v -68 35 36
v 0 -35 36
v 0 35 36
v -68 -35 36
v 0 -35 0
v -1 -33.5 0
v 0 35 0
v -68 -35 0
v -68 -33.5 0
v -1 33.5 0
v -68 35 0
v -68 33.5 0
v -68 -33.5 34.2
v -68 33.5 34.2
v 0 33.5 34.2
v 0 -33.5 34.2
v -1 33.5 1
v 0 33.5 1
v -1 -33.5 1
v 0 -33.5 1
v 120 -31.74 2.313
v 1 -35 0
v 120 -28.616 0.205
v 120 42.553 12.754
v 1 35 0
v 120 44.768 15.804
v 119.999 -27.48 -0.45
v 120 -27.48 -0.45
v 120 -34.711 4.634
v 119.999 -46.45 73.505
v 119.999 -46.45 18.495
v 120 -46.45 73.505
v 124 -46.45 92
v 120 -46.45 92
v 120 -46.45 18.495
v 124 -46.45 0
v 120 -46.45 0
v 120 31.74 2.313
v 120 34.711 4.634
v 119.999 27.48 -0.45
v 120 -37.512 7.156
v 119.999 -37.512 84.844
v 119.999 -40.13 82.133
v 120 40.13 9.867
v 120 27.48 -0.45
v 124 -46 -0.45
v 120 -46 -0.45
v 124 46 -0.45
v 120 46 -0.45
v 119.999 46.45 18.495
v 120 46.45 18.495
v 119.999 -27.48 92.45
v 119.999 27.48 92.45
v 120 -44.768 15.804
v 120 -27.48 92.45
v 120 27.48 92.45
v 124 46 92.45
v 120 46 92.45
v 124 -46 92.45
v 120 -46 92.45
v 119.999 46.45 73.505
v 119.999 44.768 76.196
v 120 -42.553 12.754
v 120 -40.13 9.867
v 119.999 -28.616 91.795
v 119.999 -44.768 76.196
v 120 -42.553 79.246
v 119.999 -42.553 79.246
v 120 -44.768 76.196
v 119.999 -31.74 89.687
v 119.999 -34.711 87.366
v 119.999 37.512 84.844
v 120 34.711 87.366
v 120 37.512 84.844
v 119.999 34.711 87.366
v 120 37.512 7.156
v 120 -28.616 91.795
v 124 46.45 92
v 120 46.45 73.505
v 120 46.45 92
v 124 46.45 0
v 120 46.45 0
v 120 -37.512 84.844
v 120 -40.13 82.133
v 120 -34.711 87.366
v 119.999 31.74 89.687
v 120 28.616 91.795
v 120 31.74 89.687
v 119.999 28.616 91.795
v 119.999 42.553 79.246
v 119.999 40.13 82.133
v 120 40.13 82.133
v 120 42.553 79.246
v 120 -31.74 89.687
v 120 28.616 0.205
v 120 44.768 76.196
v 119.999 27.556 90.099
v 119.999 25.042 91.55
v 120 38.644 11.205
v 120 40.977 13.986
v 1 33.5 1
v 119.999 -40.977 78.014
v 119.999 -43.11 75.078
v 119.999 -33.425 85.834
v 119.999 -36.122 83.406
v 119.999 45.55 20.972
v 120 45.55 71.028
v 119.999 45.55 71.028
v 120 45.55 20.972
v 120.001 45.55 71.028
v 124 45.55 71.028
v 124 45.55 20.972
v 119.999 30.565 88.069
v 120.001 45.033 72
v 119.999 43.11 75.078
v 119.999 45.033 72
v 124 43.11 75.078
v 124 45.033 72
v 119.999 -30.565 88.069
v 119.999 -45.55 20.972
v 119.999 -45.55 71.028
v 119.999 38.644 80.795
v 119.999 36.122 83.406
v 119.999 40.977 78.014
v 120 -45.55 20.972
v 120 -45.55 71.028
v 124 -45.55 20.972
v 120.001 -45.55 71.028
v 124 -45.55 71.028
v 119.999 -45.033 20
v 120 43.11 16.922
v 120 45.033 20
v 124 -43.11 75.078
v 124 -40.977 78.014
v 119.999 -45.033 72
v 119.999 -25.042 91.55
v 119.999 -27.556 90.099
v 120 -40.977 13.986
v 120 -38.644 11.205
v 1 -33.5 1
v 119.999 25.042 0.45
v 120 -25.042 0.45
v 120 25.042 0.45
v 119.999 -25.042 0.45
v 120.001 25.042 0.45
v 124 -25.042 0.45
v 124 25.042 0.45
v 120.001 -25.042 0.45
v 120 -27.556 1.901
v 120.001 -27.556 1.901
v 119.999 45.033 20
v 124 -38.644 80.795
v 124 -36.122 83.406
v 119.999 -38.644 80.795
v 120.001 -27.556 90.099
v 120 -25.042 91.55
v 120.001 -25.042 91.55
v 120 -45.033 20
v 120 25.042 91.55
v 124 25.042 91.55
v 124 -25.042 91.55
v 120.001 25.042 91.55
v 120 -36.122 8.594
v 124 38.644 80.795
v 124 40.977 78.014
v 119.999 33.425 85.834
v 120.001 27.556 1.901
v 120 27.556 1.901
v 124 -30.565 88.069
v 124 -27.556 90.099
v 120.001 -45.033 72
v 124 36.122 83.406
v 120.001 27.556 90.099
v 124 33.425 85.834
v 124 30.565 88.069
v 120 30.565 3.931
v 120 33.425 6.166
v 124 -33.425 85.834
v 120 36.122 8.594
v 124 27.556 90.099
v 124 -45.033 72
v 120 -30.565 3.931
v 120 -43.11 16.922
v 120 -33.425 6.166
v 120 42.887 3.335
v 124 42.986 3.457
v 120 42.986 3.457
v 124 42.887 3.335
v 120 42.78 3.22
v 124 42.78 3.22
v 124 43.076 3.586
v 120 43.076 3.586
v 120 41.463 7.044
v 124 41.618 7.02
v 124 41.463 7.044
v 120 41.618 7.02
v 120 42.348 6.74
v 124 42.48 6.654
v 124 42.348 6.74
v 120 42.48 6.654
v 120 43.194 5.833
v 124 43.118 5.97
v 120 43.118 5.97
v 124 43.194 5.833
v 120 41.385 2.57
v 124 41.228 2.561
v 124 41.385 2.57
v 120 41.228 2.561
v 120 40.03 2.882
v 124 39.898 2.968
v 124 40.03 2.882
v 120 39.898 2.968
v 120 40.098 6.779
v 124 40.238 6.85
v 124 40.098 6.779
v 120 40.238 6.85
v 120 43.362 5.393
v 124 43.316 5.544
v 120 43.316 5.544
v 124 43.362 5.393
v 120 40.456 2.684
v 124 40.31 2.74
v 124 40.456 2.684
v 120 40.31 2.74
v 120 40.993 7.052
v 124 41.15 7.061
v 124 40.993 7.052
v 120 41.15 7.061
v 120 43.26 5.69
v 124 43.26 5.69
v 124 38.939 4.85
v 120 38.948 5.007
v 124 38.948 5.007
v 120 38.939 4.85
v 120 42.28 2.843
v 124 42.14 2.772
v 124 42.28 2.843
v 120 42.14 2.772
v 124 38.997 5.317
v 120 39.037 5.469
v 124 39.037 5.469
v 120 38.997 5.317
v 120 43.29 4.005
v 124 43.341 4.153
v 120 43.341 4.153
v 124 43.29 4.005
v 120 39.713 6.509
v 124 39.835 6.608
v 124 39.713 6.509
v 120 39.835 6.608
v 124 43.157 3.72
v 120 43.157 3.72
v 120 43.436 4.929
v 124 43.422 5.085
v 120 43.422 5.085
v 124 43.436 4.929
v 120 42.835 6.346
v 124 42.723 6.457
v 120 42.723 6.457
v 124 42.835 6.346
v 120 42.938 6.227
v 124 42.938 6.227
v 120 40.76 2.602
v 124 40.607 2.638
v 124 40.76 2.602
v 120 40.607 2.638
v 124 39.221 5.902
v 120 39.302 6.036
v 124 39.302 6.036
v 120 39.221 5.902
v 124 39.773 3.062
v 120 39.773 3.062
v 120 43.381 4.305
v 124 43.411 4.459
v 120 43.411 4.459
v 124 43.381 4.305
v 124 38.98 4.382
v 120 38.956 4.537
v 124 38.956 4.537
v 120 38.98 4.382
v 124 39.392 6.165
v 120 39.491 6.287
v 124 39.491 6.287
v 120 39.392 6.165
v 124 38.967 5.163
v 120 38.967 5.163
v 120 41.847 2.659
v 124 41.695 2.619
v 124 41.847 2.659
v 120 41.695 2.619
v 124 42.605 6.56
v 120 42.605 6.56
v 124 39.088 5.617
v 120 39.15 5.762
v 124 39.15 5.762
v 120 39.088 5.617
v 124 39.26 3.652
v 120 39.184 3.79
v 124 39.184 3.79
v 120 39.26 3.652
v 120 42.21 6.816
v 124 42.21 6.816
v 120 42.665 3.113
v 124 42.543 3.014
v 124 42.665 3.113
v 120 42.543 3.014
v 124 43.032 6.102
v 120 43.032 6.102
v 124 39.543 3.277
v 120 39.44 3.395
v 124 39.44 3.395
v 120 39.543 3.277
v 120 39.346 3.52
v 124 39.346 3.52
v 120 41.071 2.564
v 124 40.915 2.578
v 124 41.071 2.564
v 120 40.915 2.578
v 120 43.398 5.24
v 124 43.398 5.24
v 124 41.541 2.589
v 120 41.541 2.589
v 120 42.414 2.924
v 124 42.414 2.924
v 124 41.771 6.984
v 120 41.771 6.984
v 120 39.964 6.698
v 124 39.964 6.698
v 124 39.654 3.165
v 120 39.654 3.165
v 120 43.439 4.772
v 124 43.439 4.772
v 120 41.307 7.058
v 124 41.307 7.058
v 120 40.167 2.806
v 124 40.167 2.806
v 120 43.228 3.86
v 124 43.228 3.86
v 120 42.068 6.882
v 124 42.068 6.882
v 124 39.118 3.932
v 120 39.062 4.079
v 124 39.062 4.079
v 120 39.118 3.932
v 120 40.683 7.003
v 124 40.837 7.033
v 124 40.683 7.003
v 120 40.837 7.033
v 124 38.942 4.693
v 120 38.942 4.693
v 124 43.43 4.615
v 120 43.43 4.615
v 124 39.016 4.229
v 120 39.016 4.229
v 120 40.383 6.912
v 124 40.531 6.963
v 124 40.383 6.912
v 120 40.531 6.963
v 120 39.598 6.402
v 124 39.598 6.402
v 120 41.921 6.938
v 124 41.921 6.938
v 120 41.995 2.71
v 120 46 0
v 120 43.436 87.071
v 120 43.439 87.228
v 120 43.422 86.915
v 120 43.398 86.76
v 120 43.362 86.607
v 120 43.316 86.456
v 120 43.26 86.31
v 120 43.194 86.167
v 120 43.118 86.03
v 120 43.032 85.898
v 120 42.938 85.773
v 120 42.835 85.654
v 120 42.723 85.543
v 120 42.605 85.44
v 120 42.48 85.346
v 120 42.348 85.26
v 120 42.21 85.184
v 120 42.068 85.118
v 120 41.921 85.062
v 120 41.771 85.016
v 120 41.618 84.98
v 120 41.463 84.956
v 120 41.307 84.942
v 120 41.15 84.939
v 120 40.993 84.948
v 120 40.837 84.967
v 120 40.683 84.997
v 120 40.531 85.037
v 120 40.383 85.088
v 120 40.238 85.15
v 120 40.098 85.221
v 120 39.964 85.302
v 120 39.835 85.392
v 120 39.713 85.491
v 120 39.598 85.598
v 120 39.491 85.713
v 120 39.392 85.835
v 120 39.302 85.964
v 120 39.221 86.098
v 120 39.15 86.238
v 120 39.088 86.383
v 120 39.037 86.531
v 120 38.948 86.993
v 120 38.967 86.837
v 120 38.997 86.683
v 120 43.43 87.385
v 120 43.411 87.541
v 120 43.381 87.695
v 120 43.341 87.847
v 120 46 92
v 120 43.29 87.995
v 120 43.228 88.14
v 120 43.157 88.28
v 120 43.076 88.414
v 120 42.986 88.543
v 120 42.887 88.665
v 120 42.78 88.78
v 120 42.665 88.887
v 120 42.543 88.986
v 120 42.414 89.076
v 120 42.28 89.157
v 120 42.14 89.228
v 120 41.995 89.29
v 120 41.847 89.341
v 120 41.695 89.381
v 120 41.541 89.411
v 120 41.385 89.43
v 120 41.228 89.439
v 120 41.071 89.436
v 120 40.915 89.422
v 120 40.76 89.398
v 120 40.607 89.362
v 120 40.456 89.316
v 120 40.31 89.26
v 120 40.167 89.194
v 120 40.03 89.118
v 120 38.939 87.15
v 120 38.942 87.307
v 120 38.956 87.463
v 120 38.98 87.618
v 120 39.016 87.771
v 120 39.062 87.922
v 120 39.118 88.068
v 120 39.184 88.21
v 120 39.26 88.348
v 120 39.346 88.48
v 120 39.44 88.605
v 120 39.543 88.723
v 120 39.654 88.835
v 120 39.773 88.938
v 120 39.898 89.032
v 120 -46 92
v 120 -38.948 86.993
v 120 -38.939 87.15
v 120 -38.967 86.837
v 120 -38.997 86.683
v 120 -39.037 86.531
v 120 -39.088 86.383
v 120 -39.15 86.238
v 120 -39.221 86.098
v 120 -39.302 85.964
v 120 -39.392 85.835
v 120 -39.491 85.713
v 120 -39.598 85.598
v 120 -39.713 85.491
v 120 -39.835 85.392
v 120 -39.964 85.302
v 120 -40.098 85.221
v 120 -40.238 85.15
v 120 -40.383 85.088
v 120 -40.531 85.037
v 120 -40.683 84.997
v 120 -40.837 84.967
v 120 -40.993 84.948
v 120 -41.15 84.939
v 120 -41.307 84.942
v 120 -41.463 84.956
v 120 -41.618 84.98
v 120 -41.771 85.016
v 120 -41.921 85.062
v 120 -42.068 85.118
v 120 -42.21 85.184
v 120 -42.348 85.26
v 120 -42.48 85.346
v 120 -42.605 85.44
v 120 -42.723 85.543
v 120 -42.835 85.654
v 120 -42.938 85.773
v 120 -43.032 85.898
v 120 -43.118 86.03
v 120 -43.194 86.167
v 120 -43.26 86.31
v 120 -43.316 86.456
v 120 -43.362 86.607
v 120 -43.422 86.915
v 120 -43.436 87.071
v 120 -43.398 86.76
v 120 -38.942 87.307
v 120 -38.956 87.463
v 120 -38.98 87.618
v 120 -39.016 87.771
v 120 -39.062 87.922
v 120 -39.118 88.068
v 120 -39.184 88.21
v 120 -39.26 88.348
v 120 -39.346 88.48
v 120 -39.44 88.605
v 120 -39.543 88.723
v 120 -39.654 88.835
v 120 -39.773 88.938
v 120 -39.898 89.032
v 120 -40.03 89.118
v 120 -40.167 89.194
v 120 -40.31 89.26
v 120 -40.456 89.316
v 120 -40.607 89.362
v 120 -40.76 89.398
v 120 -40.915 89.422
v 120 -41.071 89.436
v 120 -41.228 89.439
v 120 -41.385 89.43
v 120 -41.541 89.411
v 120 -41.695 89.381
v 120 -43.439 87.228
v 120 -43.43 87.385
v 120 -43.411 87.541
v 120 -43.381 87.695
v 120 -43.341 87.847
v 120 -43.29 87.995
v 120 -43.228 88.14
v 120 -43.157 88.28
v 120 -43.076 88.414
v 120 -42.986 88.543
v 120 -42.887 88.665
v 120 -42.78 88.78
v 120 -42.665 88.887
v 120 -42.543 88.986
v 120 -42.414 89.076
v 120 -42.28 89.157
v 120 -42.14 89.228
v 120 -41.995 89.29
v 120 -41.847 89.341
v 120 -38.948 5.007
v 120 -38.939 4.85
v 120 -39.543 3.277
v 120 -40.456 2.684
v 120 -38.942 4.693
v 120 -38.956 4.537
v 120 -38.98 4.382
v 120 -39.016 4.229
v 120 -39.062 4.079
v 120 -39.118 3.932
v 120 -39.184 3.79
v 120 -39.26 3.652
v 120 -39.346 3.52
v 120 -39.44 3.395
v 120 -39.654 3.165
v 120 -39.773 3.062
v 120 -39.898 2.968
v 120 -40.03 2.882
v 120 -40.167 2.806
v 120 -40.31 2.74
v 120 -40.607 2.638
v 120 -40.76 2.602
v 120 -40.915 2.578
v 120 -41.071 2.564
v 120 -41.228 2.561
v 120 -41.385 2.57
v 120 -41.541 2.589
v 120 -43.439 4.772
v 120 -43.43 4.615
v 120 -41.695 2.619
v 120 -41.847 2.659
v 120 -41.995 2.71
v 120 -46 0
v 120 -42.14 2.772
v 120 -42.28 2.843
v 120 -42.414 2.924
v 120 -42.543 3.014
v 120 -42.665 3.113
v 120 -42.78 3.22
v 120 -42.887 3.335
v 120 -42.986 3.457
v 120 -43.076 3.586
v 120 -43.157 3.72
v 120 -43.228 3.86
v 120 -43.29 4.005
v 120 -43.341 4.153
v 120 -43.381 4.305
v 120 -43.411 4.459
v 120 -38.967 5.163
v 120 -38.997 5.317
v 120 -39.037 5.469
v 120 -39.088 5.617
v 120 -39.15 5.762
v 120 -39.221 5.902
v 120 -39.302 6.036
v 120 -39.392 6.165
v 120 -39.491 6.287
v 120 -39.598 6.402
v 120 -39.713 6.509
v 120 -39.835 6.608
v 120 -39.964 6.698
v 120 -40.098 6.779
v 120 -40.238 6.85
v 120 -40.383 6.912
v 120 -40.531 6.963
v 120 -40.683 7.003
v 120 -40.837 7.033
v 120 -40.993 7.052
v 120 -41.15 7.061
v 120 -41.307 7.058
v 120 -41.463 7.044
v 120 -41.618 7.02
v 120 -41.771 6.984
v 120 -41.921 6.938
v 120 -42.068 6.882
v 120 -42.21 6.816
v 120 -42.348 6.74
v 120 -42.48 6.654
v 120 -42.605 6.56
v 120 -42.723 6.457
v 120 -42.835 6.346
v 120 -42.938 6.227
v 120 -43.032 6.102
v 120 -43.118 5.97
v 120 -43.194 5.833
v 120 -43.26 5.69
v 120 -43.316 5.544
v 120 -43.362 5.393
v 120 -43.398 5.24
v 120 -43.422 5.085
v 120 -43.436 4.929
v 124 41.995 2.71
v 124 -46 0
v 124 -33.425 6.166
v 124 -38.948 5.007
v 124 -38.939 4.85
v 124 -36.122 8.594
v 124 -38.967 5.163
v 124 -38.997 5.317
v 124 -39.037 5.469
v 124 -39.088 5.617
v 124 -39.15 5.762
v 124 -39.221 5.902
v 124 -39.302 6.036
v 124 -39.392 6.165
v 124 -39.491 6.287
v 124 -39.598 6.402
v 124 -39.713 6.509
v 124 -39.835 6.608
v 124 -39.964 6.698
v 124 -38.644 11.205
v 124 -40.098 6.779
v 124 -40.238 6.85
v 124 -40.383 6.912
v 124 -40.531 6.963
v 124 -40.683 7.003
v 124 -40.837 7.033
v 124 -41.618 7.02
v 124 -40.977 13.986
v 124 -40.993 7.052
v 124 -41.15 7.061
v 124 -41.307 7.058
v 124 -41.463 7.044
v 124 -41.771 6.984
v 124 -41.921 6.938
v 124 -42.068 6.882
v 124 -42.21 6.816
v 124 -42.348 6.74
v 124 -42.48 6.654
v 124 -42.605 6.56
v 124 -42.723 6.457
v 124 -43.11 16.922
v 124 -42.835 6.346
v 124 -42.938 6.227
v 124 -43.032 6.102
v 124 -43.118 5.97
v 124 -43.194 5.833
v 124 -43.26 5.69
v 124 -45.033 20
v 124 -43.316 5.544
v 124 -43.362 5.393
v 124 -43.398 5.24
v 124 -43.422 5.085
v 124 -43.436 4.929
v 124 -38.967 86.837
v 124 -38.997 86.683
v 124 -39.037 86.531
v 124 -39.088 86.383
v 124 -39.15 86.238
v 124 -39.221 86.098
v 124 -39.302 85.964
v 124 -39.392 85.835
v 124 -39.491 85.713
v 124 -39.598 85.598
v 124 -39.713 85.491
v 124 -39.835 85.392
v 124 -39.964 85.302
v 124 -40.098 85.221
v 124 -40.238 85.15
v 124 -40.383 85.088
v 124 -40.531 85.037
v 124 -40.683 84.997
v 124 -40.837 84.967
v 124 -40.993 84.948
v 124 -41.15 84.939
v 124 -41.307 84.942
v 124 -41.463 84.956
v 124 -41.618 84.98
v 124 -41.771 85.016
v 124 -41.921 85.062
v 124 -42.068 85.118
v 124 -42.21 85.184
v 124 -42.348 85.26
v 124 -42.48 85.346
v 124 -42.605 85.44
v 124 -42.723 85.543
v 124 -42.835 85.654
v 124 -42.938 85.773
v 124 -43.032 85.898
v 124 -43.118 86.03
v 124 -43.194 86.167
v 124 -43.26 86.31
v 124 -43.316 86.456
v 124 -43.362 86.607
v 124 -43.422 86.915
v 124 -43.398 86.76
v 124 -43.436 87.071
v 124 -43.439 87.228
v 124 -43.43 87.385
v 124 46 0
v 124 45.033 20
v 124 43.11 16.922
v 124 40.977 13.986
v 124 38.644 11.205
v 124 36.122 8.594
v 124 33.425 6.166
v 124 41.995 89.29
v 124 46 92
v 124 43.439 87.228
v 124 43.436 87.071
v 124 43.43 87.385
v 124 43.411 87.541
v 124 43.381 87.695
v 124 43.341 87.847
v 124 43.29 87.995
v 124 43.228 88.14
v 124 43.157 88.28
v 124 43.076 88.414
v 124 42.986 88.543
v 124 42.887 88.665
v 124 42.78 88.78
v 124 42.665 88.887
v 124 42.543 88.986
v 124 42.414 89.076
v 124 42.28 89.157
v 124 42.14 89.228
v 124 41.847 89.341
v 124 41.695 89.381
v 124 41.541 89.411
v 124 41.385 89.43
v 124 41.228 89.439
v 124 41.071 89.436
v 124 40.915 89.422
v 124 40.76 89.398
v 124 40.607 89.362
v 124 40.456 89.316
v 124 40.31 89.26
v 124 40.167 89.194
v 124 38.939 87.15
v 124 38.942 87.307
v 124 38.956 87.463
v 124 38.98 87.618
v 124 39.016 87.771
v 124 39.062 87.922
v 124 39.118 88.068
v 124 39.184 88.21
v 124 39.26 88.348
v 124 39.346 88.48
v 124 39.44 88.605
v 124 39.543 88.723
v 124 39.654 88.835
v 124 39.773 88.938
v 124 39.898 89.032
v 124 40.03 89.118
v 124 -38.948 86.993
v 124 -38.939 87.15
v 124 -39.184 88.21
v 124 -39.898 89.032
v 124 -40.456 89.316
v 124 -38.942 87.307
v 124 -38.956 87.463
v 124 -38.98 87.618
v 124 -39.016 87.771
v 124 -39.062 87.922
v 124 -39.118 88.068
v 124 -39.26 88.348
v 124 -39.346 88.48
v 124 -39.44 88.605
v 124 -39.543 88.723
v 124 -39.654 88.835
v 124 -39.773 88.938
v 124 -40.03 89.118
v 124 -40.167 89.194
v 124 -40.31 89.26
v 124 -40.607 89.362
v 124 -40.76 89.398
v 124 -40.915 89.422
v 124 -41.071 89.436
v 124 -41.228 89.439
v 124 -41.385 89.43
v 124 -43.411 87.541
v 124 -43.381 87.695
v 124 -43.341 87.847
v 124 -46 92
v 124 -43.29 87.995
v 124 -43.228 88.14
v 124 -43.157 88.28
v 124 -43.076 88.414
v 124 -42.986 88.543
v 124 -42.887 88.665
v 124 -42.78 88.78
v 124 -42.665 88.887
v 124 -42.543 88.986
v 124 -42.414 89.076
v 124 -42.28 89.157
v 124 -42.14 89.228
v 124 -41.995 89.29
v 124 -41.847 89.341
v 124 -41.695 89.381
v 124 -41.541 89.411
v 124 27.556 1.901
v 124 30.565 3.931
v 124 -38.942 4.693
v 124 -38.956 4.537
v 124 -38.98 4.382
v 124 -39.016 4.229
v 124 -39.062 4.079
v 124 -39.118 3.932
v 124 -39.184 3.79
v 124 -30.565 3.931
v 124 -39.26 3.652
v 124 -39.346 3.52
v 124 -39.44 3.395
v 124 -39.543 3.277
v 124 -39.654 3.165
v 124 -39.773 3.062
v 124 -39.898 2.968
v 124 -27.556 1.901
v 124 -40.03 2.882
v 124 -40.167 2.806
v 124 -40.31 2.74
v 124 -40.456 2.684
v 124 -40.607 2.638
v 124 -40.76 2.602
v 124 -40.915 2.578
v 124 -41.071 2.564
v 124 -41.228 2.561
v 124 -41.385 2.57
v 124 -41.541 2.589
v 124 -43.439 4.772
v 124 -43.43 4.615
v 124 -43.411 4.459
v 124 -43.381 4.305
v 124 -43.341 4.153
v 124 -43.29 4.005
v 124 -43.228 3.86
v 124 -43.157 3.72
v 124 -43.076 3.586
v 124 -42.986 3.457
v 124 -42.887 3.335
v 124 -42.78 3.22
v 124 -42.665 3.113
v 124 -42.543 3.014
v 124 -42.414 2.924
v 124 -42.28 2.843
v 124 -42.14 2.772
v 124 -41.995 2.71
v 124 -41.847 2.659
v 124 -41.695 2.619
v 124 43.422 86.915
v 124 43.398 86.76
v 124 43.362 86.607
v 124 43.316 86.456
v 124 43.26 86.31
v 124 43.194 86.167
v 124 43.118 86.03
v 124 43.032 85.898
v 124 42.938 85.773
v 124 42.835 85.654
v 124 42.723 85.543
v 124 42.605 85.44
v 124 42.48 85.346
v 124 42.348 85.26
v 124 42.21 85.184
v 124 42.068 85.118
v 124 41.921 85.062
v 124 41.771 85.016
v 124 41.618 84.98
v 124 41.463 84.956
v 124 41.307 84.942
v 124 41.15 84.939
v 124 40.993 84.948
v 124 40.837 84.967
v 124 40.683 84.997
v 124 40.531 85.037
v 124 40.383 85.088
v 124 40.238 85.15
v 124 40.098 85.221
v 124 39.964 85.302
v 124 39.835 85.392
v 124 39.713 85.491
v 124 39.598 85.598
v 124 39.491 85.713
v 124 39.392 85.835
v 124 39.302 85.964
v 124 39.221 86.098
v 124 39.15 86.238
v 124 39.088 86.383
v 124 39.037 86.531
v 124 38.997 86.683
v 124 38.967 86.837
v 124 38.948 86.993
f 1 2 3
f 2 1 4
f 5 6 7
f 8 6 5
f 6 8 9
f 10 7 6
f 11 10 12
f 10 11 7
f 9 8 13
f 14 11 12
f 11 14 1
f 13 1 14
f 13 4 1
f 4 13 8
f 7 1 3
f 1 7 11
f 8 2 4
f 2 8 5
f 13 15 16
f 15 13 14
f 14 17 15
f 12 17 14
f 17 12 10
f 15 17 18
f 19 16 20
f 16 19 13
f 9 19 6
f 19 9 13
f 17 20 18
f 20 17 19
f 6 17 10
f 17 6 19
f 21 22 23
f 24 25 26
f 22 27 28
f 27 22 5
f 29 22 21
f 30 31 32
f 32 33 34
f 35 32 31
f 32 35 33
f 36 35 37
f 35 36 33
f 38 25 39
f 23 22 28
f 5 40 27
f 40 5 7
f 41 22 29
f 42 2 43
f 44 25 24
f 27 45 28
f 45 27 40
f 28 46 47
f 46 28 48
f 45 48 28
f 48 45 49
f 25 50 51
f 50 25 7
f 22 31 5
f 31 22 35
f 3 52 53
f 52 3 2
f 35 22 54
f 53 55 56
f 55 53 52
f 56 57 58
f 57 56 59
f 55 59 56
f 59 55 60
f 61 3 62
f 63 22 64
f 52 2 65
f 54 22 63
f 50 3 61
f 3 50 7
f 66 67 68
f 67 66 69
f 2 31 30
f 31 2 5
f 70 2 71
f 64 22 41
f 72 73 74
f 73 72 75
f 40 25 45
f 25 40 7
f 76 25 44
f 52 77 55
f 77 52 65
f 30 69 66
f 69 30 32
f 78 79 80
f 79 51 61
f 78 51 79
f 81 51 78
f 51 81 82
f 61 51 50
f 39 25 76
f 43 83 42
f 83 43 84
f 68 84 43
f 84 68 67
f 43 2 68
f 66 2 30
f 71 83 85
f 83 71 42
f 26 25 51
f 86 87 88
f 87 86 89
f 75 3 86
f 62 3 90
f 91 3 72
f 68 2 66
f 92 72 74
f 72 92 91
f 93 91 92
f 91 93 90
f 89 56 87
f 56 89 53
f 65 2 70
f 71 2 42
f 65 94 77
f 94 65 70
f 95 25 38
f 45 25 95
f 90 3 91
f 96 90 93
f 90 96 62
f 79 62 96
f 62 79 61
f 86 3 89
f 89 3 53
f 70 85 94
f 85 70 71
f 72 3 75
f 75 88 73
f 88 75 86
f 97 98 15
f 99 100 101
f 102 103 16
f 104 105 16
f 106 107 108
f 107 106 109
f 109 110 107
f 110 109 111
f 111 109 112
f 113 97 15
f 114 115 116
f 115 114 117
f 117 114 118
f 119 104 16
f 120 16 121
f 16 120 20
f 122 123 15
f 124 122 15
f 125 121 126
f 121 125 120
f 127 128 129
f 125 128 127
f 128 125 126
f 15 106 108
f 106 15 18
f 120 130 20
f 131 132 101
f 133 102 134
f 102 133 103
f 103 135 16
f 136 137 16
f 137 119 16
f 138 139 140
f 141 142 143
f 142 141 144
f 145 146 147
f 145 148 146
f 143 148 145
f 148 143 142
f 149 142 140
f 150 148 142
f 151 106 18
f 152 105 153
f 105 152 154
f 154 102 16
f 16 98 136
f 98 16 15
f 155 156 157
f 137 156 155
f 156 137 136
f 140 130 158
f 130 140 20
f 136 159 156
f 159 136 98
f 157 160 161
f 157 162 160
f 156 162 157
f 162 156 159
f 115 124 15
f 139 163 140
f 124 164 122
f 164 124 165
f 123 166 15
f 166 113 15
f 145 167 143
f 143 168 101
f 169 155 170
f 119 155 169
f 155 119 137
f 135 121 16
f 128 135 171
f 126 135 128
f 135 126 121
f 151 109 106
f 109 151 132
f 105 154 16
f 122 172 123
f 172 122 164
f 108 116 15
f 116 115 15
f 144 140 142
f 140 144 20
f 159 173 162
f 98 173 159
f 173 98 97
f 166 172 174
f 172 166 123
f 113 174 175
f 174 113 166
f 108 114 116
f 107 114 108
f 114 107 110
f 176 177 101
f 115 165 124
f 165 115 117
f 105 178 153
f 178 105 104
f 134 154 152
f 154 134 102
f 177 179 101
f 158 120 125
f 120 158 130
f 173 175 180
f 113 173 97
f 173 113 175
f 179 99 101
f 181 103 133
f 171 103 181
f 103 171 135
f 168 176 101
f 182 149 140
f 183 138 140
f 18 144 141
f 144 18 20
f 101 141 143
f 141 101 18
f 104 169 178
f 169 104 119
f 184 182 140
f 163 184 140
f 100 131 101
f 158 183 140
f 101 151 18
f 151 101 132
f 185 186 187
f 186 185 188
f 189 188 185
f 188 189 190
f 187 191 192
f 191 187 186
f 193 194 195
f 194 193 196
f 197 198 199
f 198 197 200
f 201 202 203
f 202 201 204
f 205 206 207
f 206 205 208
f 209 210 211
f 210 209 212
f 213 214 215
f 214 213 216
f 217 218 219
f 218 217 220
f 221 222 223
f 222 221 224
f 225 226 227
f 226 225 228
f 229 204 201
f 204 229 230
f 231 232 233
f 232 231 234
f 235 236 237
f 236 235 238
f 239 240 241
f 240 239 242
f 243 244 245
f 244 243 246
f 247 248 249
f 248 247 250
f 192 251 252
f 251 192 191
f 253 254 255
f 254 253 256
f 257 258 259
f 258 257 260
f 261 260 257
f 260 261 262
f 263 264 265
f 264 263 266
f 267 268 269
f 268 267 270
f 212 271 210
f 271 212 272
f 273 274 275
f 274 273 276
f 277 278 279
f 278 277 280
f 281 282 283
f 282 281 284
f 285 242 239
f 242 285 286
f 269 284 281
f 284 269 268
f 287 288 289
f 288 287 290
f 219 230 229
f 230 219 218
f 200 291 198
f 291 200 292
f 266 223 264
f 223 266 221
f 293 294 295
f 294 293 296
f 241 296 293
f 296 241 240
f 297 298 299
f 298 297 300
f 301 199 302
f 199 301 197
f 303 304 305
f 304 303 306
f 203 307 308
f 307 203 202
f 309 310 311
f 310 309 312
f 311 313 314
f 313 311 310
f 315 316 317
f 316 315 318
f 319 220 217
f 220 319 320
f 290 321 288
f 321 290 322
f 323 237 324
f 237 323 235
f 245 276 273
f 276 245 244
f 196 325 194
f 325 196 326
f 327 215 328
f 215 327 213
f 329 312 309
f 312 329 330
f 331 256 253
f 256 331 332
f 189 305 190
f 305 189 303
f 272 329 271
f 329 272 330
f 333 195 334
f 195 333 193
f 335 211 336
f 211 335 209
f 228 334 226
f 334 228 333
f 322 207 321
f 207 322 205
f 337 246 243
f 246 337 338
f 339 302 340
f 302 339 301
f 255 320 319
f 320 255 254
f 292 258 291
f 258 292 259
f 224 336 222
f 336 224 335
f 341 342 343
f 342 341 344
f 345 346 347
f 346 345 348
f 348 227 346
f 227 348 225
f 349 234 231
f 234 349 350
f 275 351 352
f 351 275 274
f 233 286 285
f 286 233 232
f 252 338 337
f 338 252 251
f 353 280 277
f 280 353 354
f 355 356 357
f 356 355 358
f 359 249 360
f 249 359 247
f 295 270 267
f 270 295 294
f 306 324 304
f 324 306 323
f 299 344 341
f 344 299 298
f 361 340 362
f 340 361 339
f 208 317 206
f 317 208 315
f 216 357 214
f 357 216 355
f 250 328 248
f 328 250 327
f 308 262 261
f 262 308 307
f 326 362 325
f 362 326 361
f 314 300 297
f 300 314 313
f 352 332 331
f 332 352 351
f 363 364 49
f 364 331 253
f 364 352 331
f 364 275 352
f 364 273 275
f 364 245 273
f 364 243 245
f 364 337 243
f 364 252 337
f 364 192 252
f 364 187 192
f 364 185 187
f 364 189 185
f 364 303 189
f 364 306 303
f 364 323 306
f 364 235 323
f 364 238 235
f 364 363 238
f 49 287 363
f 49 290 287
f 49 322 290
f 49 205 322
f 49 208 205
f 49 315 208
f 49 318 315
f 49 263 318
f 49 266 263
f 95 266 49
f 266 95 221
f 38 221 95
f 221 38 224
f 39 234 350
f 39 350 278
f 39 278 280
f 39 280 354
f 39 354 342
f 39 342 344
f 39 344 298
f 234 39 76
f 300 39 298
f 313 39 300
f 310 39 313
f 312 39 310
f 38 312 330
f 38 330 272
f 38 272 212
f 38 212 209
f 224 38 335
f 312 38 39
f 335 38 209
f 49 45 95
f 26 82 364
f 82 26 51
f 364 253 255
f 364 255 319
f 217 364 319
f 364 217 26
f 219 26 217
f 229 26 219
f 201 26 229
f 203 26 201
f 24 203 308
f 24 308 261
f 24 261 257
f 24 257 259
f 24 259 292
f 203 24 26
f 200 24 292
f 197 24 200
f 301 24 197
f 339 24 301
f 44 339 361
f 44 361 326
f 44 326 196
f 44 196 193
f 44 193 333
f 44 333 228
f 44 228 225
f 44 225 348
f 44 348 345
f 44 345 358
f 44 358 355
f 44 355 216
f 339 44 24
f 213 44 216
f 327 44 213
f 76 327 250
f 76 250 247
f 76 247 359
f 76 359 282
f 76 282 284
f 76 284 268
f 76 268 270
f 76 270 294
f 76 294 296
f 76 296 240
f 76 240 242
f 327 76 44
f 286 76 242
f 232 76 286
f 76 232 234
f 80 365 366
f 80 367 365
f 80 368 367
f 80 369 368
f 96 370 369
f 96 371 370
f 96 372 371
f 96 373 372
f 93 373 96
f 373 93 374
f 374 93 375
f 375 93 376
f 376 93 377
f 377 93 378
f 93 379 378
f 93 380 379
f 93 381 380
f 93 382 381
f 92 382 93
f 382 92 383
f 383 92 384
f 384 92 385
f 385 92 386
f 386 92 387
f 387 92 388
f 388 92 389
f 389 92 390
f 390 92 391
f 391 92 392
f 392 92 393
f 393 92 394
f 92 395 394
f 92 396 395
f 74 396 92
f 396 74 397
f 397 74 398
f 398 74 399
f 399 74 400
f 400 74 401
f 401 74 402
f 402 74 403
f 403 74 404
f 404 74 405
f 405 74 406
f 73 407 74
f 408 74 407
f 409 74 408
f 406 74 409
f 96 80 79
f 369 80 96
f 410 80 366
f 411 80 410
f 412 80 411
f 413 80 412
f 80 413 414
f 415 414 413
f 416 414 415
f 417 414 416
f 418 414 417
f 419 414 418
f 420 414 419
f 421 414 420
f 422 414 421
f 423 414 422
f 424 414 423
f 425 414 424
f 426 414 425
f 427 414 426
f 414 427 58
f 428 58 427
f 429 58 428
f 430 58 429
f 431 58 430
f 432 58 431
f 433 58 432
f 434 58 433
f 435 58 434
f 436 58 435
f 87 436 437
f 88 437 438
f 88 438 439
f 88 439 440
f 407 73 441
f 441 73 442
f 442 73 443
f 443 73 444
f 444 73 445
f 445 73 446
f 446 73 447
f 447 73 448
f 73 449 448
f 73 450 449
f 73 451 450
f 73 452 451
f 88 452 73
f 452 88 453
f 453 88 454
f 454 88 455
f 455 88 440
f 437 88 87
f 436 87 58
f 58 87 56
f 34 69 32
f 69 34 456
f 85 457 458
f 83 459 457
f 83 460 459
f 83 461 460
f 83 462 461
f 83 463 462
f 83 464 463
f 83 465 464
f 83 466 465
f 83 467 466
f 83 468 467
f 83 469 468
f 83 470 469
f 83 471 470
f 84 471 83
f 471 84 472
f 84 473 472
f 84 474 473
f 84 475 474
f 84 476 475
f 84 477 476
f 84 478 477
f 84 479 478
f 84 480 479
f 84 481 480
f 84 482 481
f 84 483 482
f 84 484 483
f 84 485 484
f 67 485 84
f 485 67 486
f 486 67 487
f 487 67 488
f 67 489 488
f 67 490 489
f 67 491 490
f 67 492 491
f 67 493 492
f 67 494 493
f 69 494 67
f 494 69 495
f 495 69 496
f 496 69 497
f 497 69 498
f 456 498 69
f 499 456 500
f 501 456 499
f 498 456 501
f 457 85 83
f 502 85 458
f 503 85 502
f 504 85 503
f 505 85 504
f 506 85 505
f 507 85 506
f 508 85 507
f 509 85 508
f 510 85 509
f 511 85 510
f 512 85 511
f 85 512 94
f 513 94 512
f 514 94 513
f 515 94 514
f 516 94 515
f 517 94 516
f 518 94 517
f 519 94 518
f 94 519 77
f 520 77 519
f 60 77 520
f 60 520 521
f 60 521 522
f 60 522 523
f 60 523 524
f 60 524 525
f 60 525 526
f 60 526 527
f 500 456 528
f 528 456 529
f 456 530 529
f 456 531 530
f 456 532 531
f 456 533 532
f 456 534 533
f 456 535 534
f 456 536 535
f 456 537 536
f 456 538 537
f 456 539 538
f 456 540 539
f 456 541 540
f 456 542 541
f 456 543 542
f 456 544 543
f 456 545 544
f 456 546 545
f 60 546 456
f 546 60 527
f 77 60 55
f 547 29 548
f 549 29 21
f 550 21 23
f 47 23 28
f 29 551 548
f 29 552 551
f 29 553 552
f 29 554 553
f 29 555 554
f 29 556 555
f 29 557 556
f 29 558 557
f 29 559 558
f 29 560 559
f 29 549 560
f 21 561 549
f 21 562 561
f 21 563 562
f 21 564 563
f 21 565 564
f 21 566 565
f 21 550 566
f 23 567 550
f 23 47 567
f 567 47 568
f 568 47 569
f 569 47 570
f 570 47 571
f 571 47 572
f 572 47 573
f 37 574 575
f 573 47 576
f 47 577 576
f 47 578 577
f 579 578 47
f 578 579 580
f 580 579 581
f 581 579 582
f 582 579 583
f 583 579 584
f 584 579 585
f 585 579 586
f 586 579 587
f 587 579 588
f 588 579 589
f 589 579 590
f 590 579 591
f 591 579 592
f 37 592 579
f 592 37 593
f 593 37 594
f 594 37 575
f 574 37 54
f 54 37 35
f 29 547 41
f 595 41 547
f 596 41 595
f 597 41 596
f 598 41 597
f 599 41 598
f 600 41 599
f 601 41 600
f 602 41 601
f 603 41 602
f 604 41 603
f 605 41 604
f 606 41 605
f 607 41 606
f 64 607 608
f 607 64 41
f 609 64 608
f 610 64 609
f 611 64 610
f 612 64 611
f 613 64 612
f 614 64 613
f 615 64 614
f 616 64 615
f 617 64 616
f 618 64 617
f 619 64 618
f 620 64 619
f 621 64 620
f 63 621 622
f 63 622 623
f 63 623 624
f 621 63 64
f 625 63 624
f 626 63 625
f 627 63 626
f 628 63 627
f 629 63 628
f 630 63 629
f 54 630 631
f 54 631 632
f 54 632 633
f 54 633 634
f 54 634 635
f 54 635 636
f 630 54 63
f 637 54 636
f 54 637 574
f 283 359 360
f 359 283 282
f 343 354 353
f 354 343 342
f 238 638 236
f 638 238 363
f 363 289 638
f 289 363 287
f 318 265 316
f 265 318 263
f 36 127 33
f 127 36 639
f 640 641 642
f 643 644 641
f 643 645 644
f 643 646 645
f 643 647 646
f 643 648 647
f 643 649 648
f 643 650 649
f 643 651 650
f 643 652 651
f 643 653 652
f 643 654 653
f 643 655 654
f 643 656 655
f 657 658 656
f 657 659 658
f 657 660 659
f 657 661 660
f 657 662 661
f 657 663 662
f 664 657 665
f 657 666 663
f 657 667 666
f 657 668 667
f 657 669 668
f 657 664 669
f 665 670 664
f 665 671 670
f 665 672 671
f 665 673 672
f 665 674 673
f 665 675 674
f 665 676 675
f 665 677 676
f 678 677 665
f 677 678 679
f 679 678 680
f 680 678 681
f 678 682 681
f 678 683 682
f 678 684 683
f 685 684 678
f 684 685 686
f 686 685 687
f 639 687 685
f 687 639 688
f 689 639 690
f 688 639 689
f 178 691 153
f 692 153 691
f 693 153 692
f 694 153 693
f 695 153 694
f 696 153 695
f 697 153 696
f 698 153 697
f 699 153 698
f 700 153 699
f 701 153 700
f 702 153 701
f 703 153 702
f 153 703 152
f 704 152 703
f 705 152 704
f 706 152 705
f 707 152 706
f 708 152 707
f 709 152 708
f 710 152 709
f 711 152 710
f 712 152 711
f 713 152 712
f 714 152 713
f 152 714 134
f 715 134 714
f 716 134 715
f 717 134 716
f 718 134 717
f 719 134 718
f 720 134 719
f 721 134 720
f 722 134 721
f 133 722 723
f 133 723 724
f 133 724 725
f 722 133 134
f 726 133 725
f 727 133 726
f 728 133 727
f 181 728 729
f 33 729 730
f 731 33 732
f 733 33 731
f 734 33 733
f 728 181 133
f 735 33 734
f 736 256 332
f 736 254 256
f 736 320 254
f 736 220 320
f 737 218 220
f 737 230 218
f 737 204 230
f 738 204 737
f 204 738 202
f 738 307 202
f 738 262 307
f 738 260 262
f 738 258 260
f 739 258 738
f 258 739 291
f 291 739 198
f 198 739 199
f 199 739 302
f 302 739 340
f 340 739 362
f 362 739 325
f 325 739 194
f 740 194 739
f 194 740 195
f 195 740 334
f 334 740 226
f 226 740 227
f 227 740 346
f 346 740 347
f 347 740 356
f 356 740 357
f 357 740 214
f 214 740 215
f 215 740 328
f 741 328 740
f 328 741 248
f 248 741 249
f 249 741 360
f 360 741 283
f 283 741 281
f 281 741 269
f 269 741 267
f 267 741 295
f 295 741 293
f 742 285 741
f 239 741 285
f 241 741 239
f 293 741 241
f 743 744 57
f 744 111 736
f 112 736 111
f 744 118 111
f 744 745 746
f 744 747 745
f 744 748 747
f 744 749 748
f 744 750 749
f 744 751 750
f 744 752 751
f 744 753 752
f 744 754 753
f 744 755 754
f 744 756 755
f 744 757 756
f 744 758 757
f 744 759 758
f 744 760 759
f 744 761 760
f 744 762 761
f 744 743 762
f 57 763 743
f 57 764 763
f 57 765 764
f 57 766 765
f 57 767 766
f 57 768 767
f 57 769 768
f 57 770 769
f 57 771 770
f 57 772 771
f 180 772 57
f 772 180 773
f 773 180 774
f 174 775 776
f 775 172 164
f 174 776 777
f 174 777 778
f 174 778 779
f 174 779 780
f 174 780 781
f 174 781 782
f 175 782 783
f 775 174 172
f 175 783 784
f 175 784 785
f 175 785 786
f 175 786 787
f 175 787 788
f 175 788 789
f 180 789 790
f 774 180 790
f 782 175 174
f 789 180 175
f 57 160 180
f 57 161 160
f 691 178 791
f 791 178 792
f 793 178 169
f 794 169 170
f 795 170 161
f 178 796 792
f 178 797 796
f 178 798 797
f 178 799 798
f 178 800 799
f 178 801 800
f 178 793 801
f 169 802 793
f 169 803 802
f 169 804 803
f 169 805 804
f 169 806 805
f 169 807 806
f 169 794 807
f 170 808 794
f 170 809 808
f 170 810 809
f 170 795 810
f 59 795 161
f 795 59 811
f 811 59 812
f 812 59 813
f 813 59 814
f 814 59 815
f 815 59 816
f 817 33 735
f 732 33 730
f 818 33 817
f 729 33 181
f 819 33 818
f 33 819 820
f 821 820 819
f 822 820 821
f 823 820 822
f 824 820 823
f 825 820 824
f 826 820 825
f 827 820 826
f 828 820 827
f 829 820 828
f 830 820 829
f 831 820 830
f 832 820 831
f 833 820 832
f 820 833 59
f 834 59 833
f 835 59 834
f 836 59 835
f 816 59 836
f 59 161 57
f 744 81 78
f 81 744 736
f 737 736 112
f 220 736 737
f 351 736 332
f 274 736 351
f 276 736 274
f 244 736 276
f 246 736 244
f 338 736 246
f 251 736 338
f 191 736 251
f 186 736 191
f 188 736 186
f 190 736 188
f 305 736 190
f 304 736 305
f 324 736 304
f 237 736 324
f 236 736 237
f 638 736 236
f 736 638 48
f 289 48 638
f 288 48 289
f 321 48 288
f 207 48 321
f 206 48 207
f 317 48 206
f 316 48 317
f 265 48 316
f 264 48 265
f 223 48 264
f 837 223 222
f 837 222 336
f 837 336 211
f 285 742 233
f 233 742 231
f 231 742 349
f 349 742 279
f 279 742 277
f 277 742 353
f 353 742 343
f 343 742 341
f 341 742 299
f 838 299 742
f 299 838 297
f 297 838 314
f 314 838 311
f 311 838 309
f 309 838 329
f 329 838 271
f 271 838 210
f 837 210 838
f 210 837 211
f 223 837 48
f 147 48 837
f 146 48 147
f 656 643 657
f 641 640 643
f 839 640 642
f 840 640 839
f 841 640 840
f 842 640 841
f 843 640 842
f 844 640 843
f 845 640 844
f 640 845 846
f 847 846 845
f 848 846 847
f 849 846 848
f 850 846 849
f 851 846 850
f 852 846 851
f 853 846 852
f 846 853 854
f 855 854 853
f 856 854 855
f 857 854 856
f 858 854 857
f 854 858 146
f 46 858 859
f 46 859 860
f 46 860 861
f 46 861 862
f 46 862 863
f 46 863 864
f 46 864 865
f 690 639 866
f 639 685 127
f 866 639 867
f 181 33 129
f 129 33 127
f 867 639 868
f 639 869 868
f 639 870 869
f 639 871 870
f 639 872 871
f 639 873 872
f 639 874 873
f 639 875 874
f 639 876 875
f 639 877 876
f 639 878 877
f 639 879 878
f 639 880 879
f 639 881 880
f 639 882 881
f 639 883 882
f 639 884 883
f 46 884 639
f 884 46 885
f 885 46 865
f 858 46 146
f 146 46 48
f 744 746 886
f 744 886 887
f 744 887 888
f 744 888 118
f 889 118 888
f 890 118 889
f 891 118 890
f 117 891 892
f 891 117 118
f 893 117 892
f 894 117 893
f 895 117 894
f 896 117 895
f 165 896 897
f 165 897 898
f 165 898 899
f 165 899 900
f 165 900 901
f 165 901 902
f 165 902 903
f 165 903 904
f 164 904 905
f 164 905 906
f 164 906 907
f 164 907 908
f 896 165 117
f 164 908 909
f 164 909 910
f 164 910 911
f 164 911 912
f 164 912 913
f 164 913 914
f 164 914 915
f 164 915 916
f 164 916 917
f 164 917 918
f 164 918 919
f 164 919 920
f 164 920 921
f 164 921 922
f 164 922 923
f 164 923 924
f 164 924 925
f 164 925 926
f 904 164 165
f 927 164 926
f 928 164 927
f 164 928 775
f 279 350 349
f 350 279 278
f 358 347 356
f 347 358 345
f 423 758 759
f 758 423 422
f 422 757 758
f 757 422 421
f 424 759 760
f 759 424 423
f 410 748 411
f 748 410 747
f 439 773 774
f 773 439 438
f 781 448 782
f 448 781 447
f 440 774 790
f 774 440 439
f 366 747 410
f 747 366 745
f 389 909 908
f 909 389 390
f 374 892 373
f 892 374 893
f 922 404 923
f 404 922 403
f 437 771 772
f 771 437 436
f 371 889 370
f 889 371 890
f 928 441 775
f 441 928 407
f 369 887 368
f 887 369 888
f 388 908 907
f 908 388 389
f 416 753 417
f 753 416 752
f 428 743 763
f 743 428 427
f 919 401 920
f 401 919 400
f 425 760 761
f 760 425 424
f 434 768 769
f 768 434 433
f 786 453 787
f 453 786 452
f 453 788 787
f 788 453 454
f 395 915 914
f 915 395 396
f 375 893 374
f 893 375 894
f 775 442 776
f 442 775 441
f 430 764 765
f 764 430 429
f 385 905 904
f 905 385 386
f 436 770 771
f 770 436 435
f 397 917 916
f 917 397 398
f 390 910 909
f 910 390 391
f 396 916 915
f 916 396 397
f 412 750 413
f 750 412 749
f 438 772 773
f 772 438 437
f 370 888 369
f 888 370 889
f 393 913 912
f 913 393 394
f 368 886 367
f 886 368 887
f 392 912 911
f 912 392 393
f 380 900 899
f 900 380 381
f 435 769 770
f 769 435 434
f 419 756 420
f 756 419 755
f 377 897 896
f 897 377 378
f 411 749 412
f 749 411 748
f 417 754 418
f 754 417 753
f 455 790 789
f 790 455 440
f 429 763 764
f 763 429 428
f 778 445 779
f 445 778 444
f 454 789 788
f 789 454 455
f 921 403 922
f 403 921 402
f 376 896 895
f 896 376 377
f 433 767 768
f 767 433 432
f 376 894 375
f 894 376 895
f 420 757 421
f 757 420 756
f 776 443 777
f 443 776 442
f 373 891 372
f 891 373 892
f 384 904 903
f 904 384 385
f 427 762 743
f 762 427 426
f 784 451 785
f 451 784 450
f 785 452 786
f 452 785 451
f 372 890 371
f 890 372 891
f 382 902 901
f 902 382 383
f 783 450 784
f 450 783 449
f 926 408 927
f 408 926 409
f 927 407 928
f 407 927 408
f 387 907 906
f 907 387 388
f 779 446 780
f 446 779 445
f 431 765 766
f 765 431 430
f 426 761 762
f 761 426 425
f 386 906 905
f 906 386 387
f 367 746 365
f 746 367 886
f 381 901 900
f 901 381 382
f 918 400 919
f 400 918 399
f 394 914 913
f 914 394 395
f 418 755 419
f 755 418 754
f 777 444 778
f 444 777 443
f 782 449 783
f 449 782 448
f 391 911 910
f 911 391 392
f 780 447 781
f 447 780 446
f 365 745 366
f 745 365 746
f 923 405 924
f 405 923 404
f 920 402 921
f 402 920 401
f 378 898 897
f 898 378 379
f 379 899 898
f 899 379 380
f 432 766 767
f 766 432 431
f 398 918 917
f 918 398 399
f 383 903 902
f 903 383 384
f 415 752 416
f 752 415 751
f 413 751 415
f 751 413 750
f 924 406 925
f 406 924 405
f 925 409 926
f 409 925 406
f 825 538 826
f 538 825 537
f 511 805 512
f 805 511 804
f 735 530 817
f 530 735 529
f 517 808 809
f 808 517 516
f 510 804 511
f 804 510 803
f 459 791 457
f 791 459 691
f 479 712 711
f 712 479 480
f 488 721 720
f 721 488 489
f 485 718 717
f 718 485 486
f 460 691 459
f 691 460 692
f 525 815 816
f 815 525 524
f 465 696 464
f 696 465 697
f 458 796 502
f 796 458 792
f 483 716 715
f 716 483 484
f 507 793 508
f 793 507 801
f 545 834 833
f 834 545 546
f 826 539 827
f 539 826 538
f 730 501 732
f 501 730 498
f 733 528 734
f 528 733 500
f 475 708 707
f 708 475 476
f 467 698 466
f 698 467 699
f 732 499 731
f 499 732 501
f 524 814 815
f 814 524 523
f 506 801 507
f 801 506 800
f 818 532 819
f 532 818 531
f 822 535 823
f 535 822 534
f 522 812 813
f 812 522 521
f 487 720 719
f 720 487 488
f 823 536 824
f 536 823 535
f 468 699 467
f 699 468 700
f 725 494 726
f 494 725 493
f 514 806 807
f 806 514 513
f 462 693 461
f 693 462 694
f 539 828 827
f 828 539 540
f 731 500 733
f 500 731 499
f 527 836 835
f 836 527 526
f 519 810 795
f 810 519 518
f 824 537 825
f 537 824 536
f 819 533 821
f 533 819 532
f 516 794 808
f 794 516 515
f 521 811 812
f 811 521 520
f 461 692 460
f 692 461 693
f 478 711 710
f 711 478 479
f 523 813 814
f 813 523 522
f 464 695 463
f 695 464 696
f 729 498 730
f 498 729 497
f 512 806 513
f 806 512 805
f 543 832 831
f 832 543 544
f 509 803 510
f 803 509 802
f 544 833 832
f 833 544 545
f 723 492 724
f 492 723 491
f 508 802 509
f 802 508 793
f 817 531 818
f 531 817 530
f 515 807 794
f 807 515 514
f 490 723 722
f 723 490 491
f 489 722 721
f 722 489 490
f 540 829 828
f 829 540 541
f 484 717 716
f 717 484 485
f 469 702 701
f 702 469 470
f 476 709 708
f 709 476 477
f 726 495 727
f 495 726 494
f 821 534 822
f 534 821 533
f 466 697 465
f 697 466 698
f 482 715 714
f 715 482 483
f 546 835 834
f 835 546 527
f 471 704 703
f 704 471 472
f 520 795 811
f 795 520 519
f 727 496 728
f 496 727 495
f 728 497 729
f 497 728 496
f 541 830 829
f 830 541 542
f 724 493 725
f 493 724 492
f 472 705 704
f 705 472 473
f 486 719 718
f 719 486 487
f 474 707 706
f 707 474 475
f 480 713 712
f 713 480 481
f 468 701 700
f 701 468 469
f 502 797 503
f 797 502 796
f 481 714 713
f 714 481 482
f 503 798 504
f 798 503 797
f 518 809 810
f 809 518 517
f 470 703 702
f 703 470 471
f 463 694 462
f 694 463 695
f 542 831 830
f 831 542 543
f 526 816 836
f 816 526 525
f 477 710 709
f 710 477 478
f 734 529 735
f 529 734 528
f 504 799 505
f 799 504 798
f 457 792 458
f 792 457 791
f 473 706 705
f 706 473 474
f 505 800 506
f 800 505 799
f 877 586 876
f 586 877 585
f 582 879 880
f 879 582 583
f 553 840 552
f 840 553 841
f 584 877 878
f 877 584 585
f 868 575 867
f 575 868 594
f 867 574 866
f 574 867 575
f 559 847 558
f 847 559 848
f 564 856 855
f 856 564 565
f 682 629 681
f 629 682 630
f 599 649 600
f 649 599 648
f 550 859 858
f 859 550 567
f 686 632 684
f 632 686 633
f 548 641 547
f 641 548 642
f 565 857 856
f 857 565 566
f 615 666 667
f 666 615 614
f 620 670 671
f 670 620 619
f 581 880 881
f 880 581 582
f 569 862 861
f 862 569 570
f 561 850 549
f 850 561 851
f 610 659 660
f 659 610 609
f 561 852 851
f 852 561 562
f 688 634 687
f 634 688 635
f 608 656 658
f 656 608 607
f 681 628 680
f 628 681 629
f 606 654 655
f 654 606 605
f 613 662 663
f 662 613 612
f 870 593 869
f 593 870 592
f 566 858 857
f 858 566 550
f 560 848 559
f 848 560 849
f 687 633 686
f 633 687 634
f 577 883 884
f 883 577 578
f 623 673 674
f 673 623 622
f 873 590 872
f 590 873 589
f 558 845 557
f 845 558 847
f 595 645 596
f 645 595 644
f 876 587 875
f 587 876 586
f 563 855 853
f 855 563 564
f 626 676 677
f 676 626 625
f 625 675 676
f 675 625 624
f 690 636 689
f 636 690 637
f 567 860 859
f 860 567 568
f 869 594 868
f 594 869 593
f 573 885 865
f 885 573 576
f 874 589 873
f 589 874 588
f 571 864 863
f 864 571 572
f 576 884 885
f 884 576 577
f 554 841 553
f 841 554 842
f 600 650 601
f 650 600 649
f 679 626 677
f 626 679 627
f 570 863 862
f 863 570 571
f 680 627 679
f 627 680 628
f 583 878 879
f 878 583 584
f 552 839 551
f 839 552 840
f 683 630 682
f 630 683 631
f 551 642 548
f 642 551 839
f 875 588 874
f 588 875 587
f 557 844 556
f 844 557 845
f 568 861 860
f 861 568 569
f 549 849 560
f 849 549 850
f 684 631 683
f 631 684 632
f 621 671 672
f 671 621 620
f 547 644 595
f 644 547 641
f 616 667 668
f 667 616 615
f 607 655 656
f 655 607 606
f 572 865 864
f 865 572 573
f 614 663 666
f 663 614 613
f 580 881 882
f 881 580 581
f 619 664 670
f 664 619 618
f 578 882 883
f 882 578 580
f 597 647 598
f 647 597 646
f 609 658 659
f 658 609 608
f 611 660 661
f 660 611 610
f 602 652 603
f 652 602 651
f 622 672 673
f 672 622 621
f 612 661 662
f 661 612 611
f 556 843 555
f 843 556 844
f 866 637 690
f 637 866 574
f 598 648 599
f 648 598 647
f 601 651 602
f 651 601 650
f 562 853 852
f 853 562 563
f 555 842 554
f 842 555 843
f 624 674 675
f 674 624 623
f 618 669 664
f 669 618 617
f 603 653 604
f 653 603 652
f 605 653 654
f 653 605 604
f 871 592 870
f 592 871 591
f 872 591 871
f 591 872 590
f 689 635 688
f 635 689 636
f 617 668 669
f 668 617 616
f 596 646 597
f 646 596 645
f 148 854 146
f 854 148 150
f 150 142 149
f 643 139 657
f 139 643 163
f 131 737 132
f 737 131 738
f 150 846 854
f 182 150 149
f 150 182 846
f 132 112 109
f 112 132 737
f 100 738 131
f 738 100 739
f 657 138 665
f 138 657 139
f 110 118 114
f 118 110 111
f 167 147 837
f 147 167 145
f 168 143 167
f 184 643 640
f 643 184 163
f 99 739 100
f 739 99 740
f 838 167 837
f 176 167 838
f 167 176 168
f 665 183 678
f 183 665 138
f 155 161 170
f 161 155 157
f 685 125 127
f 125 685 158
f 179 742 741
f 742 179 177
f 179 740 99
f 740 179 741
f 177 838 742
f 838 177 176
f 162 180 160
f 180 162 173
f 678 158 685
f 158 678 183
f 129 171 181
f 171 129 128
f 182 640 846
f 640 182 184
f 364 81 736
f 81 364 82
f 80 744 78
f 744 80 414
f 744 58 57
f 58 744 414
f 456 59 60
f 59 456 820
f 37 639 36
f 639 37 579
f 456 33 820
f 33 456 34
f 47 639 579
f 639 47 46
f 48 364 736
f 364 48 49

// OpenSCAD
$fn = 90;

translate([-34, 0, 18]){
	heatsinkCover();
}

translate([122, 0, 0]){
	translate([0, 0, 46]){
		rotate([0, 90, 0]){
			fanConnector();
		}
	}
}

translate([0, 0, 18])
	channel();

//channel();
//channelFanConnector();
//channelHeatsinkConnector();

module heatsinkCover(){
	length = 68;
	outterWidth = 70;
	outterHeight = 36;

	difference(){
		innerHeight = 34.2;
		cube([length, outterWidth, outterHeight], center=true);
		translate([0, 0, (innerHeight-outterHeight)/2])
			#cube([length, 67, innerHeight], center=true);
	}
	translate([length/2-0.5, 0, -outterHeight/2+0.5])
		cube([1, outterWidth, 1], center=true);
}

module fanConnector(){
	thickness = 4;
	sideLength = 92;

	difference(){
		cube([sideLength, sideLength, thickness], center=true);
		#cylinder(d=104, h=thickness, center=true);
		for(n = [0:3]){
			rotate([0, 0, n*90+45])
				translate([58.25, 0, 0])
					#cylinder(d=4.5, h=thickness, center=true);
		}
	}
	
	for(n = [0:3]){
		rotate([0, 0, n*90])
			translate([0, sideLength/2, 0])
				cube([sideLength, 0.9, thickness], center=true);
	}
}

module channel(){
	difference(){
		hull(){
			channelFanConnector();
			channelHeatsinkConnector();
		}
		
		hull(){
			difference(){
				hull(){
					scale([1, 0.99999, 1]) //slightly smaller to prevent artefacts
						channelFanConnector();
				}
				channelFanConnector();
			}
			
			difference(){
				hull(){
					channelHeatsinkConnector();
				}
				channelHeatsinkConnector();
			}
		}
	}
}

module channelFanConnector(){
	translate([120, 0, 28]){
		rotate([0, 90, 0]){
			intersection(){
				fanConnector();
				cylinder(d=108, h=1e-3, center=true);
			}
		}
	}
}

module channelHeatsinkConnector(){
	translate([-33, 0, 0]){
		intersection(){
			heatsinkCover();
			translate([33.5, 0, 0])
				cube([1, 70, 36], center=true);
		}
	}
}
